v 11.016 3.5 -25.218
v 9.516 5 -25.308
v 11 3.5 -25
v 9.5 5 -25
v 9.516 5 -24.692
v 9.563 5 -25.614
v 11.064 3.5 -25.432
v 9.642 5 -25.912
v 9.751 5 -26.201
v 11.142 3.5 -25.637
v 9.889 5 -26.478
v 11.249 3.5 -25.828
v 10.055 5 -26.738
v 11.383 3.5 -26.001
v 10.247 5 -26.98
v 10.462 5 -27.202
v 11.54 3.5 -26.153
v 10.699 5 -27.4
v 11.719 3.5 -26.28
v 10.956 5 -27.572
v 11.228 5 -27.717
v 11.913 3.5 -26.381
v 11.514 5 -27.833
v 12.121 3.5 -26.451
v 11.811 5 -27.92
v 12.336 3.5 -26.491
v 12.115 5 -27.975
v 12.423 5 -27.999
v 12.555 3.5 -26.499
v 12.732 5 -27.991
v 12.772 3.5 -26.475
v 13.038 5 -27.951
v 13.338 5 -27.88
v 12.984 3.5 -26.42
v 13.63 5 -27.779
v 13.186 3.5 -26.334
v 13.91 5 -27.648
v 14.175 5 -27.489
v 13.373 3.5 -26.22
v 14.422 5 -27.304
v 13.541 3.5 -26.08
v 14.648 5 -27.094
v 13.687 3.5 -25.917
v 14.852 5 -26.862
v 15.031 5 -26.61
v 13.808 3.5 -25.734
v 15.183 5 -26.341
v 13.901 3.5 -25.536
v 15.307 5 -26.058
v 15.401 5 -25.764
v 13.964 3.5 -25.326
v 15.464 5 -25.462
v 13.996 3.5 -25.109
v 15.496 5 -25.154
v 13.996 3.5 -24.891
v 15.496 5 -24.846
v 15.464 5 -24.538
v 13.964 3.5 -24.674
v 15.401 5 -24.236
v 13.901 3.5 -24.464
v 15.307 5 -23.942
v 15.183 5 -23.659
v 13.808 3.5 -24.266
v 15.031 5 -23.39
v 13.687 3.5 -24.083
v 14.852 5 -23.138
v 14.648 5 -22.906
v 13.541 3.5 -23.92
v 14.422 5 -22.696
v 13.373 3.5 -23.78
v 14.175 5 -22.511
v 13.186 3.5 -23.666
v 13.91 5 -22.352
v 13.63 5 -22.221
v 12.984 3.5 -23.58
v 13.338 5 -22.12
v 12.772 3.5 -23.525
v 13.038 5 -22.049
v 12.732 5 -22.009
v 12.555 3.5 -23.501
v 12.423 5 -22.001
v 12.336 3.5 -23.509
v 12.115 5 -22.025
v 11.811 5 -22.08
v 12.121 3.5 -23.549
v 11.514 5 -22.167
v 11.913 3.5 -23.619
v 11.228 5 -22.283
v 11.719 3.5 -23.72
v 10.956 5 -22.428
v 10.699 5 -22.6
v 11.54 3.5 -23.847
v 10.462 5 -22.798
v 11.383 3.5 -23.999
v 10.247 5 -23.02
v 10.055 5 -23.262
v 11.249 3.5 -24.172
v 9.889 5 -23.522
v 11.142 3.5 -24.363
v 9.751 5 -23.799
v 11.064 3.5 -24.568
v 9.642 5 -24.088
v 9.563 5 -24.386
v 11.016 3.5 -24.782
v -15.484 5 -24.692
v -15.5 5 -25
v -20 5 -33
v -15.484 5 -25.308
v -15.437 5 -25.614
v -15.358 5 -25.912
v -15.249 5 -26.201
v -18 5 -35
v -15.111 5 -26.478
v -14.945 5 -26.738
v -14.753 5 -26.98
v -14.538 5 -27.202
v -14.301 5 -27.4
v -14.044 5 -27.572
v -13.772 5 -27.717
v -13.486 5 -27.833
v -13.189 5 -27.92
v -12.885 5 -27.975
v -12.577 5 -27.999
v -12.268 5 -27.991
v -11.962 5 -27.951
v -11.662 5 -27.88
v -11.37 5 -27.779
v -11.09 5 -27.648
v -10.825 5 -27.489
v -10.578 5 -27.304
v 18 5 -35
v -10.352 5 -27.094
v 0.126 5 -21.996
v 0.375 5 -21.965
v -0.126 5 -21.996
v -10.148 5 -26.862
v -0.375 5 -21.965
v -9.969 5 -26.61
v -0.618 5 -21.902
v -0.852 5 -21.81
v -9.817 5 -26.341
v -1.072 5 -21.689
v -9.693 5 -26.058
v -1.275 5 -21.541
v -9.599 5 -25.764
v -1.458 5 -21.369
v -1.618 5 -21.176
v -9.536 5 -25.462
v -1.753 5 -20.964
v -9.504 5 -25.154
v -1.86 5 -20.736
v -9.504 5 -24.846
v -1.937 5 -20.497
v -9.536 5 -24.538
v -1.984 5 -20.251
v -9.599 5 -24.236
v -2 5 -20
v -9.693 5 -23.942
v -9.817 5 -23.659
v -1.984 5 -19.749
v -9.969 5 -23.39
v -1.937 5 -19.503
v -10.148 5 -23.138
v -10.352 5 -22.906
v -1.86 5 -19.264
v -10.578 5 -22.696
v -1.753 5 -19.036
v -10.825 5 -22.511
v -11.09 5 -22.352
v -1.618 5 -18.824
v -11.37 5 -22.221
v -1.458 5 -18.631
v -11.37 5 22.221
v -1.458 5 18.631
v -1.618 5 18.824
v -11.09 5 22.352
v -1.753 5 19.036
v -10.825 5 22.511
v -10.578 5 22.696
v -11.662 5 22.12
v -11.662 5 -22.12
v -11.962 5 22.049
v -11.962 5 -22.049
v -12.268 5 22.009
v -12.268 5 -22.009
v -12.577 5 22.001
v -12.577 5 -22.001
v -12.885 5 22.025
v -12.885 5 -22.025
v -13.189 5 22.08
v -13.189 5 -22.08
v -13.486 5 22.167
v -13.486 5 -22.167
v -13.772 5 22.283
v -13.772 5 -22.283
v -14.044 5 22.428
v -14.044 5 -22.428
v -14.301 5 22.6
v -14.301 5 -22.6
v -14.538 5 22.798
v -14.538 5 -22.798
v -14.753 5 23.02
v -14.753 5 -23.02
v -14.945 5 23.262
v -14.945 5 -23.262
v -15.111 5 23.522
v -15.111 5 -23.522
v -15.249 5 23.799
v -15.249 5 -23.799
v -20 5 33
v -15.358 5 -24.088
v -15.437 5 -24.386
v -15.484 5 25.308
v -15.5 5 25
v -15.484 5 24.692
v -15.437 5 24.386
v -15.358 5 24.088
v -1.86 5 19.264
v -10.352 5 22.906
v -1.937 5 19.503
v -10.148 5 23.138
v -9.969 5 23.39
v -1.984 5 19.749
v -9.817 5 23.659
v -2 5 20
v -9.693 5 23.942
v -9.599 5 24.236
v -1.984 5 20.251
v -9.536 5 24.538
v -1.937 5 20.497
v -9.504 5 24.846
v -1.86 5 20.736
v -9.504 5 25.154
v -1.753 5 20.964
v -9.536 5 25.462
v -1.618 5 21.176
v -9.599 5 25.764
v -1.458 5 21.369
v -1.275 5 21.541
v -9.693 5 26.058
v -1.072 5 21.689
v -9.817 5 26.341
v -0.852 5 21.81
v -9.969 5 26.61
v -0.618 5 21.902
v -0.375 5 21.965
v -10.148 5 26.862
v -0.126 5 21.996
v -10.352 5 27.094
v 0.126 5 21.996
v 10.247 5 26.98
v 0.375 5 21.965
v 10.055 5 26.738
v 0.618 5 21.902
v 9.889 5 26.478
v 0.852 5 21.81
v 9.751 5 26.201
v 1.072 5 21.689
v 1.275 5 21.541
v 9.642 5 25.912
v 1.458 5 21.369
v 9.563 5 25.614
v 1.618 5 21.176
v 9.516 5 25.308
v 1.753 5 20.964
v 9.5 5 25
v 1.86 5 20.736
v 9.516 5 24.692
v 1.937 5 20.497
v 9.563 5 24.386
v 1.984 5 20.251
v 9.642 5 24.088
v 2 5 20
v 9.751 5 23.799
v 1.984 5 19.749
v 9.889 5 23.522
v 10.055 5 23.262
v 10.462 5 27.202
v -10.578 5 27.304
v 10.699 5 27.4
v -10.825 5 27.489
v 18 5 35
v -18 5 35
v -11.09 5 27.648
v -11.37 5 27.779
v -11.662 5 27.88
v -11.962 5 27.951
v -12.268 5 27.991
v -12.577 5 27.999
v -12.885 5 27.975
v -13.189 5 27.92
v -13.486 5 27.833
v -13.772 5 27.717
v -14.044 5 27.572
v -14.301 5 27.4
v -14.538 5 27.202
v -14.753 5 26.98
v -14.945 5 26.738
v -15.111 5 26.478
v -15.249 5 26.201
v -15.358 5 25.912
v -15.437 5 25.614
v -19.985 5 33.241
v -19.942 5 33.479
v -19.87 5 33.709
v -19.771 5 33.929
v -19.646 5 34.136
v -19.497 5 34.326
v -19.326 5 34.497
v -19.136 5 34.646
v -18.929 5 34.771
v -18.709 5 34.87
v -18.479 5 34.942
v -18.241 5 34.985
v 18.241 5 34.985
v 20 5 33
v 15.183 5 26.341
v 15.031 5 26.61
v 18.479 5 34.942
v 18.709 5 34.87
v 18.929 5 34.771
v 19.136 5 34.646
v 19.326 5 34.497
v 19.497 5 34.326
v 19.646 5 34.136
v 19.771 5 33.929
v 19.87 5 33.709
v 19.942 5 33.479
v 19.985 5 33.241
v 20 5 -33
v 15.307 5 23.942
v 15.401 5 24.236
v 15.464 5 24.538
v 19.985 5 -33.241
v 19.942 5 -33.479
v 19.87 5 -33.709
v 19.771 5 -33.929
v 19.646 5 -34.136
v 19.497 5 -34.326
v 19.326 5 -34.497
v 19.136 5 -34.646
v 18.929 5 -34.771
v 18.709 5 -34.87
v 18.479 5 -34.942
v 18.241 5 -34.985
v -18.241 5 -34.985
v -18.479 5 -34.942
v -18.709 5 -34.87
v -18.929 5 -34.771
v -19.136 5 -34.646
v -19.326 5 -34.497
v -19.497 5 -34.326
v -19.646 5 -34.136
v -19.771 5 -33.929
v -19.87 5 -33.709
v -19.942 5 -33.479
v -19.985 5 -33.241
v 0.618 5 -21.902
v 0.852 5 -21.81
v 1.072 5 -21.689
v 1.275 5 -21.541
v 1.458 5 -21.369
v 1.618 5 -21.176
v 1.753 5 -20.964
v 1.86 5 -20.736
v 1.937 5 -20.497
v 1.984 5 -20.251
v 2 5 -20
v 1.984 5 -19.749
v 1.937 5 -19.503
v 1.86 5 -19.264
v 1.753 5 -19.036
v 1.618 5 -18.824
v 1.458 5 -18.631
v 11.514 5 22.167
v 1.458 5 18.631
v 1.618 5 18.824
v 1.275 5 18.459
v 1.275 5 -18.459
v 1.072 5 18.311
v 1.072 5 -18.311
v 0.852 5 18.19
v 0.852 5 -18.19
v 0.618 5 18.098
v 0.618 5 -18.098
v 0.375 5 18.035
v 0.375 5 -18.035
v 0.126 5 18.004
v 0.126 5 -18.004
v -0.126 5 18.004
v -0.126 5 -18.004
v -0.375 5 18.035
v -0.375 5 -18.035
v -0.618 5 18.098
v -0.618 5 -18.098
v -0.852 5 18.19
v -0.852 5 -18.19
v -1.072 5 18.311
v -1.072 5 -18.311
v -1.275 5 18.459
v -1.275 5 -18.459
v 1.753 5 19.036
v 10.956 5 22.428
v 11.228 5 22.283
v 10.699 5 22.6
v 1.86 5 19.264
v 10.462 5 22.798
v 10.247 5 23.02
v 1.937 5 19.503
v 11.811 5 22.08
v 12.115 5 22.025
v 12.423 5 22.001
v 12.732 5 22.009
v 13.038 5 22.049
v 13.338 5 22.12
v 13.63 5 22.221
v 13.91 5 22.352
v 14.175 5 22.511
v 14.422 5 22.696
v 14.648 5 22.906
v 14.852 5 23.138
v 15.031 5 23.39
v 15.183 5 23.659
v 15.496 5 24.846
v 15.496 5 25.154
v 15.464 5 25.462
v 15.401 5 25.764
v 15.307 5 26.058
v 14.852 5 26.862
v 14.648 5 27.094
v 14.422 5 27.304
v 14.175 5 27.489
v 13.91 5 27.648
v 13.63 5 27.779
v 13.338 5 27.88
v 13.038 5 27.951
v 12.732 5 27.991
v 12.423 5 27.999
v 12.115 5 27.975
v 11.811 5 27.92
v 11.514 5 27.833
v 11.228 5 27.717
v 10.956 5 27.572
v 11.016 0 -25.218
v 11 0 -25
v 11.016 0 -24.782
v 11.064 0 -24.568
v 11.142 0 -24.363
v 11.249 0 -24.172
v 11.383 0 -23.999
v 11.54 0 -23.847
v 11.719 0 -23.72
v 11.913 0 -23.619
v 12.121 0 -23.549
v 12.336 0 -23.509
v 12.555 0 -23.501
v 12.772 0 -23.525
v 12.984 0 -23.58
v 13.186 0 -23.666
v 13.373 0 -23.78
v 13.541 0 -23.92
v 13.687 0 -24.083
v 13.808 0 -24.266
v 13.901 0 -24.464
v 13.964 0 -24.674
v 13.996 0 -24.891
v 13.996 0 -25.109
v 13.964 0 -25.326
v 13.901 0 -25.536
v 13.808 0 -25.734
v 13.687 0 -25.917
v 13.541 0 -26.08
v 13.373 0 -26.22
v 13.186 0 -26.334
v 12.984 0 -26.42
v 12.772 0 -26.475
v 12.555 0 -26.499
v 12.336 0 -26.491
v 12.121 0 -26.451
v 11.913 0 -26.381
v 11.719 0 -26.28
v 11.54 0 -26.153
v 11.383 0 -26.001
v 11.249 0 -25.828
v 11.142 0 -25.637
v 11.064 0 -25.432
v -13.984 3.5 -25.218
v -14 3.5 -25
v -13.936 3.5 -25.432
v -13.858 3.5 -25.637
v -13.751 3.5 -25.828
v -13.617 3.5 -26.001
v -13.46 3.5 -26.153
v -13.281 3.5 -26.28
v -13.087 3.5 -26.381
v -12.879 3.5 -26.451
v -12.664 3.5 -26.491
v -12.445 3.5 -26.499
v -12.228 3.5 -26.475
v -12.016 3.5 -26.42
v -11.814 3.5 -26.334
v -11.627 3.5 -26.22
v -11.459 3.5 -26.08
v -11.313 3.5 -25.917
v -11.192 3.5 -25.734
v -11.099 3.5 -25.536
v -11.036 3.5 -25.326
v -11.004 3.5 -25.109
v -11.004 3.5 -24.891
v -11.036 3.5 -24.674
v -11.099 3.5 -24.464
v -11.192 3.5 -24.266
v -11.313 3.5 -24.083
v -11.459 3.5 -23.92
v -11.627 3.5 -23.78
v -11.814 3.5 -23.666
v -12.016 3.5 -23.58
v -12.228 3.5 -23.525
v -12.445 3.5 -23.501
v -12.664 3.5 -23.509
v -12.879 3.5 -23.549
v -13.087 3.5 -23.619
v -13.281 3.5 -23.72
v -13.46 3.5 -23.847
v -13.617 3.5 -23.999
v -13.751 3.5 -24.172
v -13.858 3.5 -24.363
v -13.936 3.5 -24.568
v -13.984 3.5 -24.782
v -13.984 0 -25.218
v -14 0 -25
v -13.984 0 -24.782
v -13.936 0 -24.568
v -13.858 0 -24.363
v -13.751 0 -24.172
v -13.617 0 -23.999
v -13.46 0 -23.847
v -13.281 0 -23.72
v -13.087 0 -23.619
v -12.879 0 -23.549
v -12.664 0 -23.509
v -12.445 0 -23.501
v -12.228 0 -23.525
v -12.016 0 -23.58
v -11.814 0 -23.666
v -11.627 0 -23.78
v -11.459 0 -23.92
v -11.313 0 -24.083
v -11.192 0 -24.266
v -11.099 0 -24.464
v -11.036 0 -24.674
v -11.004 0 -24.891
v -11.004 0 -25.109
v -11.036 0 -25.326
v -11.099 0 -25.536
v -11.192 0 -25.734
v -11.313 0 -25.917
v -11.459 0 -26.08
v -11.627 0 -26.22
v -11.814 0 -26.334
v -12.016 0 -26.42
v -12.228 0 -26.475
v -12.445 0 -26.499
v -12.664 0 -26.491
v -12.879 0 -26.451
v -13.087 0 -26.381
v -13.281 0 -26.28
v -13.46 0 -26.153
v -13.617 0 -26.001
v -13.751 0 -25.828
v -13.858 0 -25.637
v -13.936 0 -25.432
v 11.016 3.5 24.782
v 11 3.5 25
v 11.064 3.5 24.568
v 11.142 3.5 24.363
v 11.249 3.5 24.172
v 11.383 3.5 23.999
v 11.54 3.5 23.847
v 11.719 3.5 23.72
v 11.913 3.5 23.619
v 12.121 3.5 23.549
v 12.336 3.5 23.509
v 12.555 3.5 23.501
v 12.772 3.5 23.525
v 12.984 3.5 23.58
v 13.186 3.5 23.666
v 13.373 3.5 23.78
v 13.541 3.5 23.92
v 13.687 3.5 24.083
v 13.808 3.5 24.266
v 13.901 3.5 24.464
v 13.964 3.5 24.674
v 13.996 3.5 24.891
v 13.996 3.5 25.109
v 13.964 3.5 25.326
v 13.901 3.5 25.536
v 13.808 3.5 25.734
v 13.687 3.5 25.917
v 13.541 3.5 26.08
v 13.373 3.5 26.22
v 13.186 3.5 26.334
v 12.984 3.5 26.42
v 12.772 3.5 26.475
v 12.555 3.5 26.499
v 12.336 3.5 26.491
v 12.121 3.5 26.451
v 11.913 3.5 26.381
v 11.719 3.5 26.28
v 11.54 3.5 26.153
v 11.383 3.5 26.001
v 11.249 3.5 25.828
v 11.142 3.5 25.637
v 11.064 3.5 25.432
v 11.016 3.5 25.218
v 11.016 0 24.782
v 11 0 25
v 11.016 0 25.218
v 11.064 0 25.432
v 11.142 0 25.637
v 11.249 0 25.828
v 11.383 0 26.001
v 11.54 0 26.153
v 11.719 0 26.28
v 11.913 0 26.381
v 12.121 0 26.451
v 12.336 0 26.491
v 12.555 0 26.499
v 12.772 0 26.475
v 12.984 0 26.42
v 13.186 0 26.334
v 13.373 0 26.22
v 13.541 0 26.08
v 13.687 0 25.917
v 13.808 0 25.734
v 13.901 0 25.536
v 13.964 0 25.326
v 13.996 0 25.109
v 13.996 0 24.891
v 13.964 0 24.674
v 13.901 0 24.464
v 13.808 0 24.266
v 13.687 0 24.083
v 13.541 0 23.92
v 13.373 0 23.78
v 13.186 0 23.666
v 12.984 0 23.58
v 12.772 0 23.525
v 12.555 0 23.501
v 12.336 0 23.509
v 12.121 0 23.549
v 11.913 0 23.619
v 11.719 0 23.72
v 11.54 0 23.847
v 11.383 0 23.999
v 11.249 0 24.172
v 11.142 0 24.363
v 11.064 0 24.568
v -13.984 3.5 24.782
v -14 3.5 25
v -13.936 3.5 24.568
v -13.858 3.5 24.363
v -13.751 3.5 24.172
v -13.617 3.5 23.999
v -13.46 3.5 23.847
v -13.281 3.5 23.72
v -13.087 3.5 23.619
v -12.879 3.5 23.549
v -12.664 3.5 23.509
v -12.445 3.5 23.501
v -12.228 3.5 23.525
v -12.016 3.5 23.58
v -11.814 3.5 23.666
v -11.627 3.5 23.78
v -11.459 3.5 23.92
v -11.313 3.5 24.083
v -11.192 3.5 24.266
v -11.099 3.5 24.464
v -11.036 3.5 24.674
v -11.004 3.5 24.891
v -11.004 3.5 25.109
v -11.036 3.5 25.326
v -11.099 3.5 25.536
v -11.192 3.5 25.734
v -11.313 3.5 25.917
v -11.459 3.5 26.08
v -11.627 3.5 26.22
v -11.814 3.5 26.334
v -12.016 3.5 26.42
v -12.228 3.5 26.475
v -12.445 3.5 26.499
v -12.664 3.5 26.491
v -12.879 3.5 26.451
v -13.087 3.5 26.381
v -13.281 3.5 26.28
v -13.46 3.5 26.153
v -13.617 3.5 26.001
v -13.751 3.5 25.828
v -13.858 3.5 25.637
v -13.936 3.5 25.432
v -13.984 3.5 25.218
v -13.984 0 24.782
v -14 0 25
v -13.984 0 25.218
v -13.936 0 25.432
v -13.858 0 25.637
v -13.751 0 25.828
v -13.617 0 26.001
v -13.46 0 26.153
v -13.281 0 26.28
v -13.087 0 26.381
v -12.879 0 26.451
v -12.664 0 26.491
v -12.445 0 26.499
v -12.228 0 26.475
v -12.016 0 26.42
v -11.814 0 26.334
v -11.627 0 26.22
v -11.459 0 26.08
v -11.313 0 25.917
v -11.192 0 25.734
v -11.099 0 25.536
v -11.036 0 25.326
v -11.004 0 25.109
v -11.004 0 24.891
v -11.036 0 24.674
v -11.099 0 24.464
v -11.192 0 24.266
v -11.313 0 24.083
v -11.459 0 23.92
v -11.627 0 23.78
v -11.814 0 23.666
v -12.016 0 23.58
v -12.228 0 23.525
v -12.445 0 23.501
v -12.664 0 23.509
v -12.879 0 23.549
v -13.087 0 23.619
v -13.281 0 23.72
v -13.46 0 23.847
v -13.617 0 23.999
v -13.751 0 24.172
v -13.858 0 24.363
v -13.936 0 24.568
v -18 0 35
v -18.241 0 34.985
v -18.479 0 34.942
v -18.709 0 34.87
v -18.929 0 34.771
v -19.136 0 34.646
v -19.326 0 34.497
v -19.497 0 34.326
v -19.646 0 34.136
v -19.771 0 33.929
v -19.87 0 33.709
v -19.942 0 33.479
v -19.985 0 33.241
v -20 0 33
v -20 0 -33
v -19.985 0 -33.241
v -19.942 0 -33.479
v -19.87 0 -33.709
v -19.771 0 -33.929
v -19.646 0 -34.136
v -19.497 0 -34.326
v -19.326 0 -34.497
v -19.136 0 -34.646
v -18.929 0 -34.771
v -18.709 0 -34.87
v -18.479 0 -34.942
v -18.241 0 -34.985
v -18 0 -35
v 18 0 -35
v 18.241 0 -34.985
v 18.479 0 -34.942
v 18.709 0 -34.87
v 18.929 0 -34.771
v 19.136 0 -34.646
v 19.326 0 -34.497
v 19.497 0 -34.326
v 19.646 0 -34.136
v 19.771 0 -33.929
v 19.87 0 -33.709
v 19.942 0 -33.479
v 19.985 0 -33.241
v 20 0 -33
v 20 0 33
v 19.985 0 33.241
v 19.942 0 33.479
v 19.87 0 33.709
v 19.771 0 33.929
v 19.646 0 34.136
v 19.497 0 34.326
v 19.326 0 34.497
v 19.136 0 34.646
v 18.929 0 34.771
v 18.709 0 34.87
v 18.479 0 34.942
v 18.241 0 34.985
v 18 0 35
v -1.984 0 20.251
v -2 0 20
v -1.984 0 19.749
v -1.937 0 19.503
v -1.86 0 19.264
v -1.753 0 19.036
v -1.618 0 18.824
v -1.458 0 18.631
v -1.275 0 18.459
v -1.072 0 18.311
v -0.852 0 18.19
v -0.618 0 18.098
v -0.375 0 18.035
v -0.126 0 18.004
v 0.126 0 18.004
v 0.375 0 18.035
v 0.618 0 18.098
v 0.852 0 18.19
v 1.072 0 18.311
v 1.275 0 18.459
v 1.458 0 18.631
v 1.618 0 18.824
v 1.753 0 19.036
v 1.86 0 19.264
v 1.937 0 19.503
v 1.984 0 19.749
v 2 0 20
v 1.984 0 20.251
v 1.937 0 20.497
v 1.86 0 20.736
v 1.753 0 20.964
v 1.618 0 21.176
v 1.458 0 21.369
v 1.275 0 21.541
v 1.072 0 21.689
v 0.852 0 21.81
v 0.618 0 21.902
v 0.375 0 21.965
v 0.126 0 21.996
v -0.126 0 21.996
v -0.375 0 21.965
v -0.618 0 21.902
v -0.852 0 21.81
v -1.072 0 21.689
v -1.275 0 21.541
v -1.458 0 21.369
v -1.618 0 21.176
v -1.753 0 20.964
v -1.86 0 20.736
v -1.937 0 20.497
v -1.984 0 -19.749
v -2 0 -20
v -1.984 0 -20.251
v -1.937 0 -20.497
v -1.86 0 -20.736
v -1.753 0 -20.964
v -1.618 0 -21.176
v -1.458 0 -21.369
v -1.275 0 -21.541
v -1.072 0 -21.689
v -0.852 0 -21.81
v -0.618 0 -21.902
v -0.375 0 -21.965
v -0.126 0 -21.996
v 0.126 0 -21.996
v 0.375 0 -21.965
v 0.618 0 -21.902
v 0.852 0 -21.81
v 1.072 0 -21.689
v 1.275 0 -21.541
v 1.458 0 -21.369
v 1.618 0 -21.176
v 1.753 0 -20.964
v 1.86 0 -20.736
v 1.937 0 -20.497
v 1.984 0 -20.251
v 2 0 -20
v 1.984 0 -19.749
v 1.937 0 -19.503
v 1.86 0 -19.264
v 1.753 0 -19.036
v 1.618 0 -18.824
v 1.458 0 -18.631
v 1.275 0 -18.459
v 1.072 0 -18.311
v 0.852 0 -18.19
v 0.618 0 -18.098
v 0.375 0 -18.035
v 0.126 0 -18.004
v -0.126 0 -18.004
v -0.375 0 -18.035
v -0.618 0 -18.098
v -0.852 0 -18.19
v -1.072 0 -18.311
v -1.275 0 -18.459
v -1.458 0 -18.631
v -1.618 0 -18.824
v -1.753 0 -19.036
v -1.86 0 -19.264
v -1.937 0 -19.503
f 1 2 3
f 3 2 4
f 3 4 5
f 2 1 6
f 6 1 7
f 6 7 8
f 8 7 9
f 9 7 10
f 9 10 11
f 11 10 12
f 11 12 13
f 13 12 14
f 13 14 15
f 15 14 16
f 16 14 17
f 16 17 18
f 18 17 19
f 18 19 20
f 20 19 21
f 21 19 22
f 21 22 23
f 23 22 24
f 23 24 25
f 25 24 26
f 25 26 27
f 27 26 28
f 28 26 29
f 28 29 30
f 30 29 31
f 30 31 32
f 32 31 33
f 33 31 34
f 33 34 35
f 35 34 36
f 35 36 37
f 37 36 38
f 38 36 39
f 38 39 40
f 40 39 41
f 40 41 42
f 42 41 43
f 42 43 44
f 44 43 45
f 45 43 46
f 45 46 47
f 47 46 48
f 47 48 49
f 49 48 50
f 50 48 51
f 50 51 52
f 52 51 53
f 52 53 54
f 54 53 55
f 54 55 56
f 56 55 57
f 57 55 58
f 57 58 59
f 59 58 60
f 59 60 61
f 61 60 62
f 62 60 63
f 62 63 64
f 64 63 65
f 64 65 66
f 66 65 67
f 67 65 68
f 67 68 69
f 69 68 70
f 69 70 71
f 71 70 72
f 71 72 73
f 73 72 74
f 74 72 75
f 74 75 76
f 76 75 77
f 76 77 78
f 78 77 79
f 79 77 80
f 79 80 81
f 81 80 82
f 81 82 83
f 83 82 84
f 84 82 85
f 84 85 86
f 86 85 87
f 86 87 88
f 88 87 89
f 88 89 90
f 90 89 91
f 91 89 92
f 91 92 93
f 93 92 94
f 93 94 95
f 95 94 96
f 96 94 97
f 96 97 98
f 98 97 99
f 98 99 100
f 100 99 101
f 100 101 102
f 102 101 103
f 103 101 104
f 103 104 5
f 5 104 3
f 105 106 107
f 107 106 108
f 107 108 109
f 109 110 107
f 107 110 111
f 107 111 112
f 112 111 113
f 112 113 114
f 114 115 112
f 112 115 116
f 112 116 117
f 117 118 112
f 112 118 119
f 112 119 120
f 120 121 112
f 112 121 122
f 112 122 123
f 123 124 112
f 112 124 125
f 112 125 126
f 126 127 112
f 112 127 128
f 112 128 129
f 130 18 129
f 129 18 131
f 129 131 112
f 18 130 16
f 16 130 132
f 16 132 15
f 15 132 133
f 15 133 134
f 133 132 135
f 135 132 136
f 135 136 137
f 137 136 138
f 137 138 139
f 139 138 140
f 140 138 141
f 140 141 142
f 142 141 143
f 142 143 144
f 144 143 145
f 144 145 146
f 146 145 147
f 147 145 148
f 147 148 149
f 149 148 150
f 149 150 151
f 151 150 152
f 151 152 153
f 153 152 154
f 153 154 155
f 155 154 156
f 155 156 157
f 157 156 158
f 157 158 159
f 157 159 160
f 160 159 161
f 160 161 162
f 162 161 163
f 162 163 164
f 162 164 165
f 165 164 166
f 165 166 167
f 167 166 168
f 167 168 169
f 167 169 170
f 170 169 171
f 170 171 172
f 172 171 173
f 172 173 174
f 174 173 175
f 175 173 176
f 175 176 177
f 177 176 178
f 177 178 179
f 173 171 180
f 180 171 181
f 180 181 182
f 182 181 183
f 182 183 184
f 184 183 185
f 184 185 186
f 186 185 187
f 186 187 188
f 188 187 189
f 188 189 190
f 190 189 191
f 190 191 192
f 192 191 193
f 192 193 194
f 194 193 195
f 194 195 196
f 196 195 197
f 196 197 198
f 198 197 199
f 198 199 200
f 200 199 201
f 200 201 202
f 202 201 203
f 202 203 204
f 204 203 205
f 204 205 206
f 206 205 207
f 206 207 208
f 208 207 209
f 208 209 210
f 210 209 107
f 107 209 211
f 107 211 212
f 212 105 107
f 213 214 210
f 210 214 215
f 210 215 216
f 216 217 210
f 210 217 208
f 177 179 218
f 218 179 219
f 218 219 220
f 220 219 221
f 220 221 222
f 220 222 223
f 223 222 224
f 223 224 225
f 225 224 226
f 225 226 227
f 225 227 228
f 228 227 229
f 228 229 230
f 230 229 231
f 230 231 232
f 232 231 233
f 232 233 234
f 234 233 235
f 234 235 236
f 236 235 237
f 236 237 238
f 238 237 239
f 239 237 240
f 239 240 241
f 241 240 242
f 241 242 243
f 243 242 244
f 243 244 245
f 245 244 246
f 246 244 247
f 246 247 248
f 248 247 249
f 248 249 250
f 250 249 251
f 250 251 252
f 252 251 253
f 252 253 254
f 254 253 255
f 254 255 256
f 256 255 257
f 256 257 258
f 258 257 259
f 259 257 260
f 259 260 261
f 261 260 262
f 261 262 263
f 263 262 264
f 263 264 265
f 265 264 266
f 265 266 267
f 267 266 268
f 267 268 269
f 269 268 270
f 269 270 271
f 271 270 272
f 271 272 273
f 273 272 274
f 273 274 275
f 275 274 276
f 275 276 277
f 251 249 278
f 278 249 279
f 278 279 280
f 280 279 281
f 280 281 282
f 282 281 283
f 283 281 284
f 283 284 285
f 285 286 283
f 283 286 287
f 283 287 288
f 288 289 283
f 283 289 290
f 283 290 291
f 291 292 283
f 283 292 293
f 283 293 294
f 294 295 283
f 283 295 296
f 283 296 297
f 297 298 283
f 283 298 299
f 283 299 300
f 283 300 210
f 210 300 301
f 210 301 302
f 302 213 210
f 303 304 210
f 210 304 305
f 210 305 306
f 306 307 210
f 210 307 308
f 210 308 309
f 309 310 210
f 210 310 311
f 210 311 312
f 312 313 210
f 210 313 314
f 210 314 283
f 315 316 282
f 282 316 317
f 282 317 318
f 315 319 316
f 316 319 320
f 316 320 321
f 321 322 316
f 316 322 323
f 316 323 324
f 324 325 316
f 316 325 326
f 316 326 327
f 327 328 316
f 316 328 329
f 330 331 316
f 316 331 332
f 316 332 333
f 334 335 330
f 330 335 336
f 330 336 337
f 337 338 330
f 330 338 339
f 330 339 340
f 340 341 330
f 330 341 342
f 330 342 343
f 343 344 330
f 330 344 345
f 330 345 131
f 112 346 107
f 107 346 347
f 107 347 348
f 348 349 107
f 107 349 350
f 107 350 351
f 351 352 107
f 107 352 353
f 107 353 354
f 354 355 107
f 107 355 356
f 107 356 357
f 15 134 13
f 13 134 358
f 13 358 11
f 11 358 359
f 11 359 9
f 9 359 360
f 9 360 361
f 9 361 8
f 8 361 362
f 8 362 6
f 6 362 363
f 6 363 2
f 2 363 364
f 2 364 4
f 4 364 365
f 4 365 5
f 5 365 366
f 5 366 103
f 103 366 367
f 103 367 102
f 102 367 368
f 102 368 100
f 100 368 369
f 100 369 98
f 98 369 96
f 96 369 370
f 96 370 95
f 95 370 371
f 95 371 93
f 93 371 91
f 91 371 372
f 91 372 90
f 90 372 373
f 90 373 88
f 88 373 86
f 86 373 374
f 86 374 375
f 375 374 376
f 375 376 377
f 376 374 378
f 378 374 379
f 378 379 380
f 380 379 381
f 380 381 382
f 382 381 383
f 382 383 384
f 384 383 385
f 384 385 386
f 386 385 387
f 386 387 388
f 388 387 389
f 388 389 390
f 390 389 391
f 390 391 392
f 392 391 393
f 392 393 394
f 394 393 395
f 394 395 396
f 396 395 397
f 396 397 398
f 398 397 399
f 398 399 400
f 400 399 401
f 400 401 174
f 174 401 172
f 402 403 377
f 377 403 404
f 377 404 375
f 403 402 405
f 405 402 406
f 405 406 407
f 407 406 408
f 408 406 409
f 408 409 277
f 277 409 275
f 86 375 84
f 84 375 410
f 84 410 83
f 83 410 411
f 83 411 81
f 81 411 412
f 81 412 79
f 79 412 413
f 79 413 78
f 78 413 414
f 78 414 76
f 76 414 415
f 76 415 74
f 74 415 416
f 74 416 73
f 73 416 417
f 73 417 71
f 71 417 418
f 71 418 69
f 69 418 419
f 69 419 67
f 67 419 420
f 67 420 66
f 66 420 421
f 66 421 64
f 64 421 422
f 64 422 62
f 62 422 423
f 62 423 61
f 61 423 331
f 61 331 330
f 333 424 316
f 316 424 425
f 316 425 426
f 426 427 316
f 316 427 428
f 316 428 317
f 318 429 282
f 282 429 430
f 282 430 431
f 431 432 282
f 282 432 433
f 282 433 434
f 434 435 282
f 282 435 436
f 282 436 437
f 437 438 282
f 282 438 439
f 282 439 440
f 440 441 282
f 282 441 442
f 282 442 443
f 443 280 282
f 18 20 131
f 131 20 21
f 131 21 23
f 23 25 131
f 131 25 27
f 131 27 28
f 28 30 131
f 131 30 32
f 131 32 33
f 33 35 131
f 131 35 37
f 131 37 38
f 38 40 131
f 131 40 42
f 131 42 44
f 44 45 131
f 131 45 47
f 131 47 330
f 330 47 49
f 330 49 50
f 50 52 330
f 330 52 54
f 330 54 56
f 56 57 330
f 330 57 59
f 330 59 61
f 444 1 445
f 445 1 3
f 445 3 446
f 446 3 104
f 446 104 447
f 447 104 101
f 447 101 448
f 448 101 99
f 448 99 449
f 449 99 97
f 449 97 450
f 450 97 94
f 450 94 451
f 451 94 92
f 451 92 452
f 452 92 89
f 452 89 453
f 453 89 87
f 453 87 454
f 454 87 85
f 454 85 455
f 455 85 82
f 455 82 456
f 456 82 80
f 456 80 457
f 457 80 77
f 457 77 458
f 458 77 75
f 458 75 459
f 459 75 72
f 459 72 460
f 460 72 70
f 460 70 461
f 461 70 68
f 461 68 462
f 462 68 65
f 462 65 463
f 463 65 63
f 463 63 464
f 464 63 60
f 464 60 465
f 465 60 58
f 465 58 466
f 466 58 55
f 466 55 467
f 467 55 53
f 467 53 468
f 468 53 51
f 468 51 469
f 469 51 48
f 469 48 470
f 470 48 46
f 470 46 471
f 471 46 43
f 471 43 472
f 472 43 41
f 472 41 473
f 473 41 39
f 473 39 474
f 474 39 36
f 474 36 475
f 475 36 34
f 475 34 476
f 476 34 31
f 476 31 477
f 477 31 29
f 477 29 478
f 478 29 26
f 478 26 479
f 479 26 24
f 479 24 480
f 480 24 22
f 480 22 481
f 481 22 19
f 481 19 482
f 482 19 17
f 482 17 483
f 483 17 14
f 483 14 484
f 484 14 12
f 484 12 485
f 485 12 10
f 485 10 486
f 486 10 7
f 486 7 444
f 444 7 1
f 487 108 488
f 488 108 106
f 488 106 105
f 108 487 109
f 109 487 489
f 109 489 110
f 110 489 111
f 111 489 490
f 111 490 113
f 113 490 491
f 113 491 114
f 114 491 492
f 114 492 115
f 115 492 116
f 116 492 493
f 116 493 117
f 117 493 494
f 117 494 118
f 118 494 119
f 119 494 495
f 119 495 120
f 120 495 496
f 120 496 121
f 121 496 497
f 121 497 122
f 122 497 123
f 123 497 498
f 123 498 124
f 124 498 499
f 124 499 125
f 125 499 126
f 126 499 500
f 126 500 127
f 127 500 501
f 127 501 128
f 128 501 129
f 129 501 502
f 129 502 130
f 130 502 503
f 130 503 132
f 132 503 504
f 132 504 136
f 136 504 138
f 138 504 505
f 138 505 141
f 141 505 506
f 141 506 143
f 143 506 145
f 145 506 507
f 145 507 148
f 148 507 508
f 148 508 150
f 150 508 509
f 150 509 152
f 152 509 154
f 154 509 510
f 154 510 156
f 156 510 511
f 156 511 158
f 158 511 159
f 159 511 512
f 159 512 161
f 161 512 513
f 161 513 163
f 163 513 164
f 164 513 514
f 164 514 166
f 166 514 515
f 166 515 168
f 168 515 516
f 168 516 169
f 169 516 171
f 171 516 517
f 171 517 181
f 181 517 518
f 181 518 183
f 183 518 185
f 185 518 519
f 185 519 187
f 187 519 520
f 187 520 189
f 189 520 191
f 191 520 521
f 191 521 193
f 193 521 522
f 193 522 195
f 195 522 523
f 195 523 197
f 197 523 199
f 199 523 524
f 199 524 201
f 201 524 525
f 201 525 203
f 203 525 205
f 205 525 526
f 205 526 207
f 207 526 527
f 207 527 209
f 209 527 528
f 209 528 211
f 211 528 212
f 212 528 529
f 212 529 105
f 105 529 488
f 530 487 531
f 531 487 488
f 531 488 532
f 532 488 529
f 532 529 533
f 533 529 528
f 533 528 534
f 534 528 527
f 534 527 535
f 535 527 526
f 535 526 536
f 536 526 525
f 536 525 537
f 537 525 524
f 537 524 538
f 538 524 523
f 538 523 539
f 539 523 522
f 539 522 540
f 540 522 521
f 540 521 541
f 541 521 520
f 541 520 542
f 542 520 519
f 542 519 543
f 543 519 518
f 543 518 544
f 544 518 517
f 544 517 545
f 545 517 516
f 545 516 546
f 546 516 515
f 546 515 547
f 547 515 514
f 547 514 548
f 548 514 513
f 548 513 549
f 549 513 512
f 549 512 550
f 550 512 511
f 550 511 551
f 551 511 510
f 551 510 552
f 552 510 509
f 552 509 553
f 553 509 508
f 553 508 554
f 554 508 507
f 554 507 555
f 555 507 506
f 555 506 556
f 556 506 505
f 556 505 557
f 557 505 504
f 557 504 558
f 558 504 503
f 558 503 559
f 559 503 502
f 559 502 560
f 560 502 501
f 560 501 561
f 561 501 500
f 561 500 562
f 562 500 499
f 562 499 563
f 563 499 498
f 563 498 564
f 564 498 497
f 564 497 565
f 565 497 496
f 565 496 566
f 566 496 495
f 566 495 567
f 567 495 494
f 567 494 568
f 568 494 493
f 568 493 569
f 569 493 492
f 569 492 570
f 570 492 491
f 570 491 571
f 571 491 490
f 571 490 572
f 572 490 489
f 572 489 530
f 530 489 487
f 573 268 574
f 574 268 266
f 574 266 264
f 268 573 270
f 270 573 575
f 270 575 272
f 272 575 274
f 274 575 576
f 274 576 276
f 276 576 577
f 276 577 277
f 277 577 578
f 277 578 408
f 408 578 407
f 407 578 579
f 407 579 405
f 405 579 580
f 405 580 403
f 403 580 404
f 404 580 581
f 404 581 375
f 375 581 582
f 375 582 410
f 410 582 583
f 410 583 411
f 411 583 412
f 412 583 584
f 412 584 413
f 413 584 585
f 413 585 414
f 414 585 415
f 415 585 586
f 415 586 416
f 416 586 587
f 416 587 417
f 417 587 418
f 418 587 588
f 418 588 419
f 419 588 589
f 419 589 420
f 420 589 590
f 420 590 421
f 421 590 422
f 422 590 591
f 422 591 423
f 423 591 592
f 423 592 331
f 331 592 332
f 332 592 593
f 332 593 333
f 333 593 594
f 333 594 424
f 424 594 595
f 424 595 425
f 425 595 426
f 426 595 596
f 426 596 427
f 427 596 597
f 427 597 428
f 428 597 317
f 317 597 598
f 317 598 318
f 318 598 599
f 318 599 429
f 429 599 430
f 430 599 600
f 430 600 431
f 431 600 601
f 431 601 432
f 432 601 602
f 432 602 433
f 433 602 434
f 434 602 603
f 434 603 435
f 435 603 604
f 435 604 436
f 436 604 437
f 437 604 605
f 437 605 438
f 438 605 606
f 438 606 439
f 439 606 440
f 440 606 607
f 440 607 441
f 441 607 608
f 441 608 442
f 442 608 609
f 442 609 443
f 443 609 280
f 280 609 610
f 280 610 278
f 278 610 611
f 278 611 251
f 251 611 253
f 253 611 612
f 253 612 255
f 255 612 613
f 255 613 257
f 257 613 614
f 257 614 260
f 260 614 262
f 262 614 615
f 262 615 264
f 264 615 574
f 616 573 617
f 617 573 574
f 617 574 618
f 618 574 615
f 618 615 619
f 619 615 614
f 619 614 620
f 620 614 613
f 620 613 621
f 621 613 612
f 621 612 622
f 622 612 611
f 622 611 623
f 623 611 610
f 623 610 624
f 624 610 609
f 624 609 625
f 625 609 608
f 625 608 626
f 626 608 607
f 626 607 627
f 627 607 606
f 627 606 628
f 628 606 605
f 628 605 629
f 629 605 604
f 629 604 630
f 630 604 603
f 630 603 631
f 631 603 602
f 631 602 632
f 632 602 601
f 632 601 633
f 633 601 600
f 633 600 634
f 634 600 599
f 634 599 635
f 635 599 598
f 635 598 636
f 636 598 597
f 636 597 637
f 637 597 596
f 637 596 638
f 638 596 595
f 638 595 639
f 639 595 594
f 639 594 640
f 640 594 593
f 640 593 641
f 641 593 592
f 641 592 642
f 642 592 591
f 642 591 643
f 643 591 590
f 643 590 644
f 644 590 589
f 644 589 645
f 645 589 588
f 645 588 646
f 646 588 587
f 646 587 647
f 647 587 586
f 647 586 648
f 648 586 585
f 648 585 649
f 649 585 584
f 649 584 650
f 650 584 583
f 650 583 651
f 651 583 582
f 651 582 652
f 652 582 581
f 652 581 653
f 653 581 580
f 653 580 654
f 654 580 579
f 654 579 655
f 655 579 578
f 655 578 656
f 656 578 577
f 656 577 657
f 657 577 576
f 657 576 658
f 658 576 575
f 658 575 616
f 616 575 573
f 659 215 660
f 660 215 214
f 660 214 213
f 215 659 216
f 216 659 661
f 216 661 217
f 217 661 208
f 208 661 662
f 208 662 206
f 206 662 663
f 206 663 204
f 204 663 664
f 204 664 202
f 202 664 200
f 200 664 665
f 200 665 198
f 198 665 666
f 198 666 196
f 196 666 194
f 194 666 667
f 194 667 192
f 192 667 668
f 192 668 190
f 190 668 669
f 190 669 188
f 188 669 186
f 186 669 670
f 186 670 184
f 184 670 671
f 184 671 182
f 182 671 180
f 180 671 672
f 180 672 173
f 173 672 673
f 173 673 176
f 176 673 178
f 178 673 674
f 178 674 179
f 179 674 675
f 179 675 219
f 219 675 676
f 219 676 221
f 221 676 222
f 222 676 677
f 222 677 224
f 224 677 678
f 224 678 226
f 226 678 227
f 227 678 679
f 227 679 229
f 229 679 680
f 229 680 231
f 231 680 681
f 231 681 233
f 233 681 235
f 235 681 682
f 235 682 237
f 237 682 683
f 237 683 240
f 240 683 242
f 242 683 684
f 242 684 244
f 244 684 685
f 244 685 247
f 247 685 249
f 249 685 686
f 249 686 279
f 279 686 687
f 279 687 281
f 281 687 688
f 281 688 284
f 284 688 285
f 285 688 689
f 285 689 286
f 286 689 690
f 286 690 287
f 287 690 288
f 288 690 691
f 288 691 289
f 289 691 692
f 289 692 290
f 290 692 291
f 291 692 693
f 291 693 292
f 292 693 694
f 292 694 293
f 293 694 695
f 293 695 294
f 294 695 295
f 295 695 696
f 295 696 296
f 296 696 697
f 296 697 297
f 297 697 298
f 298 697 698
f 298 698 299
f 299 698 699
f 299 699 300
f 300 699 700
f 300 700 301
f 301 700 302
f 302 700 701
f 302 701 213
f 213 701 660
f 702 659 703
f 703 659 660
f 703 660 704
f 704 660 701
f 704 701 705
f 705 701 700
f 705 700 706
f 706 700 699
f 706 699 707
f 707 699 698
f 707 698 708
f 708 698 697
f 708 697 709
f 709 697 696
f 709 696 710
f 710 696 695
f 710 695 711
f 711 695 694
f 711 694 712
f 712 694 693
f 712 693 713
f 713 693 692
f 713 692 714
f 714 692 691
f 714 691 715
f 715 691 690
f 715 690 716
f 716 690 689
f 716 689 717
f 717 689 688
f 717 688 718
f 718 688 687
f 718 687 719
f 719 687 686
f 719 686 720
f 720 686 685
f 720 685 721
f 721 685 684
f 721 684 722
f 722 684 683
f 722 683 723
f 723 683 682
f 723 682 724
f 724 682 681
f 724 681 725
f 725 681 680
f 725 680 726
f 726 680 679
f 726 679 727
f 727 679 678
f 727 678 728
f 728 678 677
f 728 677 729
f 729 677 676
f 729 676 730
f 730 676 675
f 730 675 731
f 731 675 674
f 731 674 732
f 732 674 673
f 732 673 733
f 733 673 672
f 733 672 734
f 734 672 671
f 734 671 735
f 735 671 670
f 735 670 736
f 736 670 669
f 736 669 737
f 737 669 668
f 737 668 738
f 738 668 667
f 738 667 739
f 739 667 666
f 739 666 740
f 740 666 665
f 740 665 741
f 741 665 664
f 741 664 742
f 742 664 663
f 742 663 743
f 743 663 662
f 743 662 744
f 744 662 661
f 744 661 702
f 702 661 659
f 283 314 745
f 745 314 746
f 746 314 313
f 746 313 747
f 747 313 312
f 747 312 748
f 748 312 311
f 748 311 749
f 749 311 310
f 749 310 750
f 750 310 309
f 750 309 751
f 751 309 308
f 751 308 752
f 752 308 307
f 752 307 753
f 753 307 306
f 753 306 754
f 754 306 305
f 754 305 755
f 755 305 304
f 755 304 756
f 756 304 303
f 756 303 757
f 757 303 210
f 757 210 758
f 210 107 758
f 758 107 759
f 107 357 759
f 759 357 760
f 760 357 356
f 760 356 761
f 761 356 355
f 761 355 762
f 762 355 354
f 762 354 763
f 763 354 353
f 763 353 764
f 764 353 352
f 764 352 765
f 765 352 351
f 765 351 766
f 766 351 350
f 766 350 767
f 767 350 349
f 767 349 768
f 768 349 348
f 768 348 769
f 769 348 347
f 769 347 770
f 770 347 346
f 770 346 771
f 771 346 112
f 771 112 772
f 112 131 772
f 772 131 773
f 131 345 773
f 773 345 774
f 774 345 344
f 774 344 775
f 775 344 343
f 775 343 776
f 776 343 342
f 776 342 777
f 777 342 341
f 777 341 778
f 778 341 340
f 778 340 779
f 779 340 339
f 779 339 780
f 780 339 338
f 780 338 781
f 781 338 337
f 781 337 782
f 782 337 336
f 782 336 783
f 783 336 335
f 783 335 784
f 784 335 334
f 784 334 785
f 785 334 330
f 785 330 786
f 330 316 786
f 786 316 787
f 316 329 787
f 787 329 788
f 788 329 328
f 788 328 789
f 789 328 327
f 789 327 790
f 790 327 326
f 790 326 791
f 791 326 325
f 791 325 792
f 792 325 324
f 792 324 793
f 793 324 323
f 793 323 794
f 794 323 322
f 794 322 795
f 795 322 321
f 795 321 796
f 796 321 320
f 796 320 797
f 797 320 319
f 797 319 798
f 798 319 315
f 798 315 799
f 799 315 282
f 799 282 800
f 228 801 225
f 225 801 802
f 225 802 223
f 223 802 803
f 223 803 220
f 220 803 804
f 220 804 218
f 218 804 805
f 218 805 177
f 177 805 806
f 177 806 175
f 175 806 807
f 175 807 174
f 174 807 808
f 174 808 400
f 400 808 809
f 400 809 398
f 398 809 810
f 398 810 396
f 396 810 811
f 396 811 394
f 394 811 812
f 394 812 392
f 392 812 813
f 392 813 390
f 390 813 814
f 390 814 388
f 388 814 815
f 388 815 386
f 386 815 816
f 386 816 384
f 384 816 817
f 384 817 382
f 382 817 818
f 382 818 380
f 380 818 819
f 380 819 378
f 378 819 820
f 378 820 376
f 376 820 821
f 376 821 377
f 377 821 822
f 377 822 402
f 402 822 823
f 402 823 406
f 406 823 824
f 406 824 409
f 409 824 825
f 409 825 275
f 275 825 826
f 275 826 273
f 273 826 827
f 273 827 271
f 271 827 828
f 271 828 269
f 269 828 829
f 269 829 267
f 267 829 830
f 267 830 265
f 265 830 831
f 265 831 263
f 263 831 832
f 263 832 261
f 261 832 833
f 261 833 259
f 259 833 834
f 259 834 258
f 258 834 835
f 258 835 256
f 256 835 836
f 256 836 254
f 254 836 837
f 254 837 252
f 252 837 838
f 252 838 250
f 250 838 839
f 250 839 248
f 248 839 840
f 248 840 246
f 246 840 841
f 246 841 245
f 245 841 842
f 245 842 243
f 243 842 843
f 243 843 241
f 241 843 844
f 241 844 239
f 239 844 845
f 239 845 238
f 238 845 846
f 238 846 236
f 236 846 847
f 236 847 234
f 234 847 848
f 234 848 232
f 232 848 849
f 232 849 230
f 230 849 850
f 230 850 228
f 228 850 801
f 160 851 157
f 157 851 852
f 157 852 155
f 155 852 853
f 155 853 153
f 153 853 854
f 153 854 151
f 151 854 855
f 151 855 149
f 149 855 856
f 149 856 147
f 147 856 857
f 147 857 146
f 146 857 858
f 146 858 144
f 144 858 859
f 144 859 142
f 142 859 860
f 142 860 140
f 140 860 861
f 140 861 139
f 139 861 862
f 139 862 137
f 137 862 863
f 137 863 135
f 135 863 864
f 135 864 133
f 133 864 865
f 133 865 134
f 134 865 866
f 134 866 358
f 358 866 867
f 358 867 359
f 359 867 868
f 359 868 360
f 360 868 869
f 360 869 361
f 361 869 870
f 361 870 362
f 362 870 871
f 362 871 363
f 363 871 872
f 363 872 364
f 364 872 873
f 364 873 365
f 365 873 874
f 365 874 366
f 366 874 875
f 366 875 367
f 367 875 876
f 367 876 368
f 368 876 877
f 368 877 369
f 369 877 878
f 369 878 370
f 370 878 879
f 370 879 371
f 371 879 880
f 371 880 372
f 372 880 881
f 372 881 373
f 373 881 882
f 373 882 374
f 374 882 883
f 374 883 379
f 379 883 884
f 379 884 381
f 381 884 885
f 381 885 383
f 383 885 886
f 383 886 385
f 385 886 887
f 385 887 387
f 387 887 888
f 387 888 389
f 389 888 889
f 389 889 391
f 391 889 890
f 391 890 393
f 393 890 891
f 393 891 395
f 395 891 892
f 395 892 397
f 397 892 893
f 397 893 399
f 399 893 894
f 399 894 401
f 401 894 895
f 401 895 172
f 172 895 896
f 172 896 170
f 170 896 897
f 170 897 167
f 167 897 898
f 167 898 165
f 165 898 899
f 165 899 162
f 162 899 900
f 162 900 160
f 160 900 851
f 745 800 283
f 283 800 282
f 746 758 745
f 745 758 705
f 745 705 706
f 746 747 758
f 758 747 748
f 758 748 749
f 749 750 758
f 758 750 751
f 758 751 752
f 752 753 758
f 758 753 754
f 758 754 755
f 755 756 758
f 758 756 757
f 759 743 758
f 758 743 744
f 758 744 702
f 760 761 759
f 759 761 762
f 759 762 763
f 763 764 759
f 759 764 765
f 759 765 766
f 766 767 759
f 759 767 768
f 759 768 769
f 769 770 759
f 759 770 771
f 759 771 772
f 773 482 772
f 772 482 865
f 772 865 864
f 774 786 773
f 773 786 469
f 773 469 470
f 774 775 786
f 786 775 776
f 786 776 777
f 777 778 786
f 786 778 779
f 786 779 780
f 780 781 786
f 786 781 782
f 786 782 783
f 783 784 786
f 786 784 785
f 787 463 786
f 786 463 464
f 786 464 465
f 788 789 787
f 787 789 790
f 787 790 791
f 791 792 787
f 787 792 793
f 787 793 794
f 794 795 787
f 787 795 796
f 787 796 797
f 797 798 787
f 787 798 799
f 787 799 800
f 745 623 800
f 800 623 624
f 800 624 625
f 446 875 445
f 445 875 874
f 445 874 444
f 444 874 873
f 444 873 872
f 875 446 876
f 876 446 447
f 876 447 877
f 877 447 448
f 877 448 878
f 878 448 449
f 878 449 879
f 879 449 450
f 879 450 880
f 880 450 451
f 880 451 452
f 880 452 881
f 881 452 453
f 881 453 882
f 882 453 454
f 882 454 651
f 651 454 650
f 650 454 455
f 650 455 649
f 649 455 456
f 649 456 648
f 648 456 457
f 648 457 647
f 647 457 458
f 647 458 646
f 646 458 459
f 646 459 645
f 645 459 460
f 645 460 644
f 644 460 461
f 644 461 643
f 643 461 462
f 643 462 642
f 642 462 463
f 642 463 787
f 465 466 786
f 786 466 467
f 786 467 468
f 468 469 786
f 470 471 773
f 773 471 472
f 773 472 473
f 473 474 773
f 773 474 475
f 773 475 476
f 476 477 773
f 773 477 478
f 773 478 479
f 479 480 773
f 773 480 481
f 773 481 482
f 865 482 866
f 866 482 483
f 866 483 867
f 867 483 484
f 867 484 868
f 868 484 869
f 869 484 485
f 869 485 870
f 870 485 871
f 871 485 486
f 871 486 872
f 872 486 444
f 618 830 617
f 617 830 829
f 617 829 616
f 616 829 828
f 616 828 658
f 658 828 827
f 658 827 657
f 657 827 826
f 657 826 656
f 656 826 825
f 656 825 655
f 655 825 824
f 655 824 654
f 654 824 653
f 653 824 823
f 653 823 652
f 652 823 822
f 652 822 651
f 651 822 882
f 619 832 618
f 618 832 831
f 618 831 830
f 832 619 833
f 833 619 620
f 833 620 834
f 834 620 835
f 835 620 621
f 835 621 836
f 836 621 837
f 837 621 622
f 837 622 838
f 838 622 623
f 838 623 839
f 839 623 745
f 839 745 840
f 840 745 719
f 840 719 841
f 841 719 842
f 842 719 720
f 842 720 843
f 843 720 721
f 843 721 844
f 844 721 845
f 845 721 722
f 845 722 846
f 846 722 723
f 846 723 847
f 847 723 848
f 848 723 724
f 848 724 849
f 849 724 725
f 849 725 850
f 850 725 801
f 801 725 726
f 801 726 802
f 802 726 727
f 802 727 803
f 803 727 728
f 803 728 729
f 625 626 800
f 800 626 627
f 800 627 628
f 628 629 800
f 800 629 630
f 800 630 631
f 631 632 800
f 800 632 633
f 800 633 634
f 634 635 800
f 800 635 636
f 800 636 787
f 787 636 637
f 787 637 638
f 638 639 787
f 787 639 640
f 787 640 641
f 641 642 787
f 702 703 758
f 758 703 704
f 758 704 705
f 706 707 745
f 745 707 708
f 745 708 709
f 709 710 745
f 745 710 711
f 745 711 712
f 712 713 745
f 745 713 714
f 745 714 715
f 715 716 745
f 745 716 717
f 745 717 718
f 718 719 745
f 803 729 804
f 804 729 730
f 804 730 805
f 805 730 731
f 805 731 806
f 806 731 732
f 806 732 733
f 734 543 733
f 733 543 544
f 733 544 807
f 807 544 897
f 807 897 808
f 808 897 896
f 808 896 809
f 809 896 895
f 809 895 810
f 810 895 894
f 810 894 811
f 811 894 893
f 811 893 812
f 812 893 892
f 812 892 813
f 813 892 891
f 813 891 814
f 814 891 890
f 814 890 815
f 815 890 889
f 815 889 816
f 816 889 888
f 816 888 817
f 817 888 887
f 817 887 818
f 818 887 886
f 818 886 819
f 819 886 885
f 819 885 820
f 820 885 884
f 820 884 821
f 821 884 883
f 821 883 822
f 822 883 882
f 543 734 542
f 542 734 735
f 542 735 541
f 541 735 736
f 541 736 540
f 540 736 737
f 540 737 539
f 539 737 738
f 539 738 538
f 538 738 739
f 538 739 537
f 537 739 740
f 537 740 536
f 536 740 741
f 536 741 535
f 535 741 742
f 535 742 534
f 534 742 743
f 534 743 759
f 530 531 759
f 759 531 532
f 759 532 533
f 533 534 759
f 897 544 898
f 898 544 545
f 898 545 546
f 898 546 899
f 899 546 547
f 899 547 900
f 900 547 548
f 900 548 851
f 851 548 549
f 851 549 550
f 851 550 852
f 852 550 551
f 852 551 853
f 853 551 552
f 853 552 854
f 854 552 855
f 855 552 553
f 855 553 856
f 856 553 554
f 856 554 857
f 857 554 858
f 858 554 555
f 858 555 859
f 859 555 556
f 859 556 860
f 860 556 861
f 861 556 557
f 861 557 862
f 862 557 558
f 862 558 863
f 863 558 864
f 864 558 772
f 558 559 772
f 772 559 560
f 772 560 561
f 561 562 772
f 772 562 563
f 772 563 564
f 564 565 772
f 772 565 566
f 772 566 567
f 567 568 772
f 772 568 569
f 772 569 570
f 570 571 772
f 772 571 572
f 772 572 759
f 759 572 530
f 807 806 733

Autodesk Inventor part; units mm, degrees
ref_plane "YZ Plane" through (0, 0, 0) normal (1, 0, 0) x (0, 1, 0)
ref_plane "XZ Plane" through (0, 0, 0) normal (0, 1, 0) x (-1, 0, 0)
ref_plane "XY Plane" through (0, 0, 0) normal (0, 0, 1) x (1, 0, 0)
sketch "Sketch1" plane through (0, 0, 0) normal (0, 1, 0) x (-1, 0, 0)
  line L0 (-20, 35) -> (20, 35)
  line L1 (20, 35) -> (20, -35)
  line L2 (20, -35) -> (-20, -35)
  line L3 (-20, -35) -> (-20, 35)
  line L4 (-20, 35) -> (20, -35) construction
  line L5 (20, 35) -> (-20, -35) construction
  circle A0 centre (0, 20) radius 2
  circle A1 centre (0, -20) radius 2
  line L6 (-12.5, 25) -> (12.5, 25) construction
  line L7 (12.5, 25) -> (12.5, -25) construction
  line L8 (12.5, -25) -> (-12.5, -25) construction
  line L9 (-12.5, -25) -> (-12.5, 25) construction
  line L10 (-12.5, 25) -> (12.5, -25) construction
  line L11 (12.5, 25) -> (-12.5, -25) construction
  circle A2 centre (12.5, -25) radius 5 construction
  circle A3 centre (12.5, -25) radius 1.5
  circle A4 centre (12.5, 25) radius 1.5
  circle A5 centre (-12.5, 25) radius 1.5
  circle A6 centre (-12.5, -25) radius 1.5
  point P0 (0, 0)
  dimension "d0" = 4
  dimension "d1" = 4
  dimension "d2" = 40
  dimension "d3" = 20
  dimension "d4" = 70
  dimension "d5" = 40
  dimension "d6" = 25
  dimension "d7" = 50
  dimension "d8" = 10
  dimension "d9" = 3
  dimension "d10" = 3
  dimension "d11" = 3
  dimension "d12" = 3
extrude "Extrusion1" add sketch "Sketch1" along normal blind 5
fillet "Fillet1" radius 2 4 edges at (20, 2.5, 35) (20, 2.5, -35) (-20, 2.5, -35) (-20, 2.5, 35)
chamfer "Chamfer1" distance 1.5 angle 45 4 edges at (-11, 5, 25) (14, 5, 25) (-11, 5, -25) (14, 5, -25)
properties part number "Encoder base"
